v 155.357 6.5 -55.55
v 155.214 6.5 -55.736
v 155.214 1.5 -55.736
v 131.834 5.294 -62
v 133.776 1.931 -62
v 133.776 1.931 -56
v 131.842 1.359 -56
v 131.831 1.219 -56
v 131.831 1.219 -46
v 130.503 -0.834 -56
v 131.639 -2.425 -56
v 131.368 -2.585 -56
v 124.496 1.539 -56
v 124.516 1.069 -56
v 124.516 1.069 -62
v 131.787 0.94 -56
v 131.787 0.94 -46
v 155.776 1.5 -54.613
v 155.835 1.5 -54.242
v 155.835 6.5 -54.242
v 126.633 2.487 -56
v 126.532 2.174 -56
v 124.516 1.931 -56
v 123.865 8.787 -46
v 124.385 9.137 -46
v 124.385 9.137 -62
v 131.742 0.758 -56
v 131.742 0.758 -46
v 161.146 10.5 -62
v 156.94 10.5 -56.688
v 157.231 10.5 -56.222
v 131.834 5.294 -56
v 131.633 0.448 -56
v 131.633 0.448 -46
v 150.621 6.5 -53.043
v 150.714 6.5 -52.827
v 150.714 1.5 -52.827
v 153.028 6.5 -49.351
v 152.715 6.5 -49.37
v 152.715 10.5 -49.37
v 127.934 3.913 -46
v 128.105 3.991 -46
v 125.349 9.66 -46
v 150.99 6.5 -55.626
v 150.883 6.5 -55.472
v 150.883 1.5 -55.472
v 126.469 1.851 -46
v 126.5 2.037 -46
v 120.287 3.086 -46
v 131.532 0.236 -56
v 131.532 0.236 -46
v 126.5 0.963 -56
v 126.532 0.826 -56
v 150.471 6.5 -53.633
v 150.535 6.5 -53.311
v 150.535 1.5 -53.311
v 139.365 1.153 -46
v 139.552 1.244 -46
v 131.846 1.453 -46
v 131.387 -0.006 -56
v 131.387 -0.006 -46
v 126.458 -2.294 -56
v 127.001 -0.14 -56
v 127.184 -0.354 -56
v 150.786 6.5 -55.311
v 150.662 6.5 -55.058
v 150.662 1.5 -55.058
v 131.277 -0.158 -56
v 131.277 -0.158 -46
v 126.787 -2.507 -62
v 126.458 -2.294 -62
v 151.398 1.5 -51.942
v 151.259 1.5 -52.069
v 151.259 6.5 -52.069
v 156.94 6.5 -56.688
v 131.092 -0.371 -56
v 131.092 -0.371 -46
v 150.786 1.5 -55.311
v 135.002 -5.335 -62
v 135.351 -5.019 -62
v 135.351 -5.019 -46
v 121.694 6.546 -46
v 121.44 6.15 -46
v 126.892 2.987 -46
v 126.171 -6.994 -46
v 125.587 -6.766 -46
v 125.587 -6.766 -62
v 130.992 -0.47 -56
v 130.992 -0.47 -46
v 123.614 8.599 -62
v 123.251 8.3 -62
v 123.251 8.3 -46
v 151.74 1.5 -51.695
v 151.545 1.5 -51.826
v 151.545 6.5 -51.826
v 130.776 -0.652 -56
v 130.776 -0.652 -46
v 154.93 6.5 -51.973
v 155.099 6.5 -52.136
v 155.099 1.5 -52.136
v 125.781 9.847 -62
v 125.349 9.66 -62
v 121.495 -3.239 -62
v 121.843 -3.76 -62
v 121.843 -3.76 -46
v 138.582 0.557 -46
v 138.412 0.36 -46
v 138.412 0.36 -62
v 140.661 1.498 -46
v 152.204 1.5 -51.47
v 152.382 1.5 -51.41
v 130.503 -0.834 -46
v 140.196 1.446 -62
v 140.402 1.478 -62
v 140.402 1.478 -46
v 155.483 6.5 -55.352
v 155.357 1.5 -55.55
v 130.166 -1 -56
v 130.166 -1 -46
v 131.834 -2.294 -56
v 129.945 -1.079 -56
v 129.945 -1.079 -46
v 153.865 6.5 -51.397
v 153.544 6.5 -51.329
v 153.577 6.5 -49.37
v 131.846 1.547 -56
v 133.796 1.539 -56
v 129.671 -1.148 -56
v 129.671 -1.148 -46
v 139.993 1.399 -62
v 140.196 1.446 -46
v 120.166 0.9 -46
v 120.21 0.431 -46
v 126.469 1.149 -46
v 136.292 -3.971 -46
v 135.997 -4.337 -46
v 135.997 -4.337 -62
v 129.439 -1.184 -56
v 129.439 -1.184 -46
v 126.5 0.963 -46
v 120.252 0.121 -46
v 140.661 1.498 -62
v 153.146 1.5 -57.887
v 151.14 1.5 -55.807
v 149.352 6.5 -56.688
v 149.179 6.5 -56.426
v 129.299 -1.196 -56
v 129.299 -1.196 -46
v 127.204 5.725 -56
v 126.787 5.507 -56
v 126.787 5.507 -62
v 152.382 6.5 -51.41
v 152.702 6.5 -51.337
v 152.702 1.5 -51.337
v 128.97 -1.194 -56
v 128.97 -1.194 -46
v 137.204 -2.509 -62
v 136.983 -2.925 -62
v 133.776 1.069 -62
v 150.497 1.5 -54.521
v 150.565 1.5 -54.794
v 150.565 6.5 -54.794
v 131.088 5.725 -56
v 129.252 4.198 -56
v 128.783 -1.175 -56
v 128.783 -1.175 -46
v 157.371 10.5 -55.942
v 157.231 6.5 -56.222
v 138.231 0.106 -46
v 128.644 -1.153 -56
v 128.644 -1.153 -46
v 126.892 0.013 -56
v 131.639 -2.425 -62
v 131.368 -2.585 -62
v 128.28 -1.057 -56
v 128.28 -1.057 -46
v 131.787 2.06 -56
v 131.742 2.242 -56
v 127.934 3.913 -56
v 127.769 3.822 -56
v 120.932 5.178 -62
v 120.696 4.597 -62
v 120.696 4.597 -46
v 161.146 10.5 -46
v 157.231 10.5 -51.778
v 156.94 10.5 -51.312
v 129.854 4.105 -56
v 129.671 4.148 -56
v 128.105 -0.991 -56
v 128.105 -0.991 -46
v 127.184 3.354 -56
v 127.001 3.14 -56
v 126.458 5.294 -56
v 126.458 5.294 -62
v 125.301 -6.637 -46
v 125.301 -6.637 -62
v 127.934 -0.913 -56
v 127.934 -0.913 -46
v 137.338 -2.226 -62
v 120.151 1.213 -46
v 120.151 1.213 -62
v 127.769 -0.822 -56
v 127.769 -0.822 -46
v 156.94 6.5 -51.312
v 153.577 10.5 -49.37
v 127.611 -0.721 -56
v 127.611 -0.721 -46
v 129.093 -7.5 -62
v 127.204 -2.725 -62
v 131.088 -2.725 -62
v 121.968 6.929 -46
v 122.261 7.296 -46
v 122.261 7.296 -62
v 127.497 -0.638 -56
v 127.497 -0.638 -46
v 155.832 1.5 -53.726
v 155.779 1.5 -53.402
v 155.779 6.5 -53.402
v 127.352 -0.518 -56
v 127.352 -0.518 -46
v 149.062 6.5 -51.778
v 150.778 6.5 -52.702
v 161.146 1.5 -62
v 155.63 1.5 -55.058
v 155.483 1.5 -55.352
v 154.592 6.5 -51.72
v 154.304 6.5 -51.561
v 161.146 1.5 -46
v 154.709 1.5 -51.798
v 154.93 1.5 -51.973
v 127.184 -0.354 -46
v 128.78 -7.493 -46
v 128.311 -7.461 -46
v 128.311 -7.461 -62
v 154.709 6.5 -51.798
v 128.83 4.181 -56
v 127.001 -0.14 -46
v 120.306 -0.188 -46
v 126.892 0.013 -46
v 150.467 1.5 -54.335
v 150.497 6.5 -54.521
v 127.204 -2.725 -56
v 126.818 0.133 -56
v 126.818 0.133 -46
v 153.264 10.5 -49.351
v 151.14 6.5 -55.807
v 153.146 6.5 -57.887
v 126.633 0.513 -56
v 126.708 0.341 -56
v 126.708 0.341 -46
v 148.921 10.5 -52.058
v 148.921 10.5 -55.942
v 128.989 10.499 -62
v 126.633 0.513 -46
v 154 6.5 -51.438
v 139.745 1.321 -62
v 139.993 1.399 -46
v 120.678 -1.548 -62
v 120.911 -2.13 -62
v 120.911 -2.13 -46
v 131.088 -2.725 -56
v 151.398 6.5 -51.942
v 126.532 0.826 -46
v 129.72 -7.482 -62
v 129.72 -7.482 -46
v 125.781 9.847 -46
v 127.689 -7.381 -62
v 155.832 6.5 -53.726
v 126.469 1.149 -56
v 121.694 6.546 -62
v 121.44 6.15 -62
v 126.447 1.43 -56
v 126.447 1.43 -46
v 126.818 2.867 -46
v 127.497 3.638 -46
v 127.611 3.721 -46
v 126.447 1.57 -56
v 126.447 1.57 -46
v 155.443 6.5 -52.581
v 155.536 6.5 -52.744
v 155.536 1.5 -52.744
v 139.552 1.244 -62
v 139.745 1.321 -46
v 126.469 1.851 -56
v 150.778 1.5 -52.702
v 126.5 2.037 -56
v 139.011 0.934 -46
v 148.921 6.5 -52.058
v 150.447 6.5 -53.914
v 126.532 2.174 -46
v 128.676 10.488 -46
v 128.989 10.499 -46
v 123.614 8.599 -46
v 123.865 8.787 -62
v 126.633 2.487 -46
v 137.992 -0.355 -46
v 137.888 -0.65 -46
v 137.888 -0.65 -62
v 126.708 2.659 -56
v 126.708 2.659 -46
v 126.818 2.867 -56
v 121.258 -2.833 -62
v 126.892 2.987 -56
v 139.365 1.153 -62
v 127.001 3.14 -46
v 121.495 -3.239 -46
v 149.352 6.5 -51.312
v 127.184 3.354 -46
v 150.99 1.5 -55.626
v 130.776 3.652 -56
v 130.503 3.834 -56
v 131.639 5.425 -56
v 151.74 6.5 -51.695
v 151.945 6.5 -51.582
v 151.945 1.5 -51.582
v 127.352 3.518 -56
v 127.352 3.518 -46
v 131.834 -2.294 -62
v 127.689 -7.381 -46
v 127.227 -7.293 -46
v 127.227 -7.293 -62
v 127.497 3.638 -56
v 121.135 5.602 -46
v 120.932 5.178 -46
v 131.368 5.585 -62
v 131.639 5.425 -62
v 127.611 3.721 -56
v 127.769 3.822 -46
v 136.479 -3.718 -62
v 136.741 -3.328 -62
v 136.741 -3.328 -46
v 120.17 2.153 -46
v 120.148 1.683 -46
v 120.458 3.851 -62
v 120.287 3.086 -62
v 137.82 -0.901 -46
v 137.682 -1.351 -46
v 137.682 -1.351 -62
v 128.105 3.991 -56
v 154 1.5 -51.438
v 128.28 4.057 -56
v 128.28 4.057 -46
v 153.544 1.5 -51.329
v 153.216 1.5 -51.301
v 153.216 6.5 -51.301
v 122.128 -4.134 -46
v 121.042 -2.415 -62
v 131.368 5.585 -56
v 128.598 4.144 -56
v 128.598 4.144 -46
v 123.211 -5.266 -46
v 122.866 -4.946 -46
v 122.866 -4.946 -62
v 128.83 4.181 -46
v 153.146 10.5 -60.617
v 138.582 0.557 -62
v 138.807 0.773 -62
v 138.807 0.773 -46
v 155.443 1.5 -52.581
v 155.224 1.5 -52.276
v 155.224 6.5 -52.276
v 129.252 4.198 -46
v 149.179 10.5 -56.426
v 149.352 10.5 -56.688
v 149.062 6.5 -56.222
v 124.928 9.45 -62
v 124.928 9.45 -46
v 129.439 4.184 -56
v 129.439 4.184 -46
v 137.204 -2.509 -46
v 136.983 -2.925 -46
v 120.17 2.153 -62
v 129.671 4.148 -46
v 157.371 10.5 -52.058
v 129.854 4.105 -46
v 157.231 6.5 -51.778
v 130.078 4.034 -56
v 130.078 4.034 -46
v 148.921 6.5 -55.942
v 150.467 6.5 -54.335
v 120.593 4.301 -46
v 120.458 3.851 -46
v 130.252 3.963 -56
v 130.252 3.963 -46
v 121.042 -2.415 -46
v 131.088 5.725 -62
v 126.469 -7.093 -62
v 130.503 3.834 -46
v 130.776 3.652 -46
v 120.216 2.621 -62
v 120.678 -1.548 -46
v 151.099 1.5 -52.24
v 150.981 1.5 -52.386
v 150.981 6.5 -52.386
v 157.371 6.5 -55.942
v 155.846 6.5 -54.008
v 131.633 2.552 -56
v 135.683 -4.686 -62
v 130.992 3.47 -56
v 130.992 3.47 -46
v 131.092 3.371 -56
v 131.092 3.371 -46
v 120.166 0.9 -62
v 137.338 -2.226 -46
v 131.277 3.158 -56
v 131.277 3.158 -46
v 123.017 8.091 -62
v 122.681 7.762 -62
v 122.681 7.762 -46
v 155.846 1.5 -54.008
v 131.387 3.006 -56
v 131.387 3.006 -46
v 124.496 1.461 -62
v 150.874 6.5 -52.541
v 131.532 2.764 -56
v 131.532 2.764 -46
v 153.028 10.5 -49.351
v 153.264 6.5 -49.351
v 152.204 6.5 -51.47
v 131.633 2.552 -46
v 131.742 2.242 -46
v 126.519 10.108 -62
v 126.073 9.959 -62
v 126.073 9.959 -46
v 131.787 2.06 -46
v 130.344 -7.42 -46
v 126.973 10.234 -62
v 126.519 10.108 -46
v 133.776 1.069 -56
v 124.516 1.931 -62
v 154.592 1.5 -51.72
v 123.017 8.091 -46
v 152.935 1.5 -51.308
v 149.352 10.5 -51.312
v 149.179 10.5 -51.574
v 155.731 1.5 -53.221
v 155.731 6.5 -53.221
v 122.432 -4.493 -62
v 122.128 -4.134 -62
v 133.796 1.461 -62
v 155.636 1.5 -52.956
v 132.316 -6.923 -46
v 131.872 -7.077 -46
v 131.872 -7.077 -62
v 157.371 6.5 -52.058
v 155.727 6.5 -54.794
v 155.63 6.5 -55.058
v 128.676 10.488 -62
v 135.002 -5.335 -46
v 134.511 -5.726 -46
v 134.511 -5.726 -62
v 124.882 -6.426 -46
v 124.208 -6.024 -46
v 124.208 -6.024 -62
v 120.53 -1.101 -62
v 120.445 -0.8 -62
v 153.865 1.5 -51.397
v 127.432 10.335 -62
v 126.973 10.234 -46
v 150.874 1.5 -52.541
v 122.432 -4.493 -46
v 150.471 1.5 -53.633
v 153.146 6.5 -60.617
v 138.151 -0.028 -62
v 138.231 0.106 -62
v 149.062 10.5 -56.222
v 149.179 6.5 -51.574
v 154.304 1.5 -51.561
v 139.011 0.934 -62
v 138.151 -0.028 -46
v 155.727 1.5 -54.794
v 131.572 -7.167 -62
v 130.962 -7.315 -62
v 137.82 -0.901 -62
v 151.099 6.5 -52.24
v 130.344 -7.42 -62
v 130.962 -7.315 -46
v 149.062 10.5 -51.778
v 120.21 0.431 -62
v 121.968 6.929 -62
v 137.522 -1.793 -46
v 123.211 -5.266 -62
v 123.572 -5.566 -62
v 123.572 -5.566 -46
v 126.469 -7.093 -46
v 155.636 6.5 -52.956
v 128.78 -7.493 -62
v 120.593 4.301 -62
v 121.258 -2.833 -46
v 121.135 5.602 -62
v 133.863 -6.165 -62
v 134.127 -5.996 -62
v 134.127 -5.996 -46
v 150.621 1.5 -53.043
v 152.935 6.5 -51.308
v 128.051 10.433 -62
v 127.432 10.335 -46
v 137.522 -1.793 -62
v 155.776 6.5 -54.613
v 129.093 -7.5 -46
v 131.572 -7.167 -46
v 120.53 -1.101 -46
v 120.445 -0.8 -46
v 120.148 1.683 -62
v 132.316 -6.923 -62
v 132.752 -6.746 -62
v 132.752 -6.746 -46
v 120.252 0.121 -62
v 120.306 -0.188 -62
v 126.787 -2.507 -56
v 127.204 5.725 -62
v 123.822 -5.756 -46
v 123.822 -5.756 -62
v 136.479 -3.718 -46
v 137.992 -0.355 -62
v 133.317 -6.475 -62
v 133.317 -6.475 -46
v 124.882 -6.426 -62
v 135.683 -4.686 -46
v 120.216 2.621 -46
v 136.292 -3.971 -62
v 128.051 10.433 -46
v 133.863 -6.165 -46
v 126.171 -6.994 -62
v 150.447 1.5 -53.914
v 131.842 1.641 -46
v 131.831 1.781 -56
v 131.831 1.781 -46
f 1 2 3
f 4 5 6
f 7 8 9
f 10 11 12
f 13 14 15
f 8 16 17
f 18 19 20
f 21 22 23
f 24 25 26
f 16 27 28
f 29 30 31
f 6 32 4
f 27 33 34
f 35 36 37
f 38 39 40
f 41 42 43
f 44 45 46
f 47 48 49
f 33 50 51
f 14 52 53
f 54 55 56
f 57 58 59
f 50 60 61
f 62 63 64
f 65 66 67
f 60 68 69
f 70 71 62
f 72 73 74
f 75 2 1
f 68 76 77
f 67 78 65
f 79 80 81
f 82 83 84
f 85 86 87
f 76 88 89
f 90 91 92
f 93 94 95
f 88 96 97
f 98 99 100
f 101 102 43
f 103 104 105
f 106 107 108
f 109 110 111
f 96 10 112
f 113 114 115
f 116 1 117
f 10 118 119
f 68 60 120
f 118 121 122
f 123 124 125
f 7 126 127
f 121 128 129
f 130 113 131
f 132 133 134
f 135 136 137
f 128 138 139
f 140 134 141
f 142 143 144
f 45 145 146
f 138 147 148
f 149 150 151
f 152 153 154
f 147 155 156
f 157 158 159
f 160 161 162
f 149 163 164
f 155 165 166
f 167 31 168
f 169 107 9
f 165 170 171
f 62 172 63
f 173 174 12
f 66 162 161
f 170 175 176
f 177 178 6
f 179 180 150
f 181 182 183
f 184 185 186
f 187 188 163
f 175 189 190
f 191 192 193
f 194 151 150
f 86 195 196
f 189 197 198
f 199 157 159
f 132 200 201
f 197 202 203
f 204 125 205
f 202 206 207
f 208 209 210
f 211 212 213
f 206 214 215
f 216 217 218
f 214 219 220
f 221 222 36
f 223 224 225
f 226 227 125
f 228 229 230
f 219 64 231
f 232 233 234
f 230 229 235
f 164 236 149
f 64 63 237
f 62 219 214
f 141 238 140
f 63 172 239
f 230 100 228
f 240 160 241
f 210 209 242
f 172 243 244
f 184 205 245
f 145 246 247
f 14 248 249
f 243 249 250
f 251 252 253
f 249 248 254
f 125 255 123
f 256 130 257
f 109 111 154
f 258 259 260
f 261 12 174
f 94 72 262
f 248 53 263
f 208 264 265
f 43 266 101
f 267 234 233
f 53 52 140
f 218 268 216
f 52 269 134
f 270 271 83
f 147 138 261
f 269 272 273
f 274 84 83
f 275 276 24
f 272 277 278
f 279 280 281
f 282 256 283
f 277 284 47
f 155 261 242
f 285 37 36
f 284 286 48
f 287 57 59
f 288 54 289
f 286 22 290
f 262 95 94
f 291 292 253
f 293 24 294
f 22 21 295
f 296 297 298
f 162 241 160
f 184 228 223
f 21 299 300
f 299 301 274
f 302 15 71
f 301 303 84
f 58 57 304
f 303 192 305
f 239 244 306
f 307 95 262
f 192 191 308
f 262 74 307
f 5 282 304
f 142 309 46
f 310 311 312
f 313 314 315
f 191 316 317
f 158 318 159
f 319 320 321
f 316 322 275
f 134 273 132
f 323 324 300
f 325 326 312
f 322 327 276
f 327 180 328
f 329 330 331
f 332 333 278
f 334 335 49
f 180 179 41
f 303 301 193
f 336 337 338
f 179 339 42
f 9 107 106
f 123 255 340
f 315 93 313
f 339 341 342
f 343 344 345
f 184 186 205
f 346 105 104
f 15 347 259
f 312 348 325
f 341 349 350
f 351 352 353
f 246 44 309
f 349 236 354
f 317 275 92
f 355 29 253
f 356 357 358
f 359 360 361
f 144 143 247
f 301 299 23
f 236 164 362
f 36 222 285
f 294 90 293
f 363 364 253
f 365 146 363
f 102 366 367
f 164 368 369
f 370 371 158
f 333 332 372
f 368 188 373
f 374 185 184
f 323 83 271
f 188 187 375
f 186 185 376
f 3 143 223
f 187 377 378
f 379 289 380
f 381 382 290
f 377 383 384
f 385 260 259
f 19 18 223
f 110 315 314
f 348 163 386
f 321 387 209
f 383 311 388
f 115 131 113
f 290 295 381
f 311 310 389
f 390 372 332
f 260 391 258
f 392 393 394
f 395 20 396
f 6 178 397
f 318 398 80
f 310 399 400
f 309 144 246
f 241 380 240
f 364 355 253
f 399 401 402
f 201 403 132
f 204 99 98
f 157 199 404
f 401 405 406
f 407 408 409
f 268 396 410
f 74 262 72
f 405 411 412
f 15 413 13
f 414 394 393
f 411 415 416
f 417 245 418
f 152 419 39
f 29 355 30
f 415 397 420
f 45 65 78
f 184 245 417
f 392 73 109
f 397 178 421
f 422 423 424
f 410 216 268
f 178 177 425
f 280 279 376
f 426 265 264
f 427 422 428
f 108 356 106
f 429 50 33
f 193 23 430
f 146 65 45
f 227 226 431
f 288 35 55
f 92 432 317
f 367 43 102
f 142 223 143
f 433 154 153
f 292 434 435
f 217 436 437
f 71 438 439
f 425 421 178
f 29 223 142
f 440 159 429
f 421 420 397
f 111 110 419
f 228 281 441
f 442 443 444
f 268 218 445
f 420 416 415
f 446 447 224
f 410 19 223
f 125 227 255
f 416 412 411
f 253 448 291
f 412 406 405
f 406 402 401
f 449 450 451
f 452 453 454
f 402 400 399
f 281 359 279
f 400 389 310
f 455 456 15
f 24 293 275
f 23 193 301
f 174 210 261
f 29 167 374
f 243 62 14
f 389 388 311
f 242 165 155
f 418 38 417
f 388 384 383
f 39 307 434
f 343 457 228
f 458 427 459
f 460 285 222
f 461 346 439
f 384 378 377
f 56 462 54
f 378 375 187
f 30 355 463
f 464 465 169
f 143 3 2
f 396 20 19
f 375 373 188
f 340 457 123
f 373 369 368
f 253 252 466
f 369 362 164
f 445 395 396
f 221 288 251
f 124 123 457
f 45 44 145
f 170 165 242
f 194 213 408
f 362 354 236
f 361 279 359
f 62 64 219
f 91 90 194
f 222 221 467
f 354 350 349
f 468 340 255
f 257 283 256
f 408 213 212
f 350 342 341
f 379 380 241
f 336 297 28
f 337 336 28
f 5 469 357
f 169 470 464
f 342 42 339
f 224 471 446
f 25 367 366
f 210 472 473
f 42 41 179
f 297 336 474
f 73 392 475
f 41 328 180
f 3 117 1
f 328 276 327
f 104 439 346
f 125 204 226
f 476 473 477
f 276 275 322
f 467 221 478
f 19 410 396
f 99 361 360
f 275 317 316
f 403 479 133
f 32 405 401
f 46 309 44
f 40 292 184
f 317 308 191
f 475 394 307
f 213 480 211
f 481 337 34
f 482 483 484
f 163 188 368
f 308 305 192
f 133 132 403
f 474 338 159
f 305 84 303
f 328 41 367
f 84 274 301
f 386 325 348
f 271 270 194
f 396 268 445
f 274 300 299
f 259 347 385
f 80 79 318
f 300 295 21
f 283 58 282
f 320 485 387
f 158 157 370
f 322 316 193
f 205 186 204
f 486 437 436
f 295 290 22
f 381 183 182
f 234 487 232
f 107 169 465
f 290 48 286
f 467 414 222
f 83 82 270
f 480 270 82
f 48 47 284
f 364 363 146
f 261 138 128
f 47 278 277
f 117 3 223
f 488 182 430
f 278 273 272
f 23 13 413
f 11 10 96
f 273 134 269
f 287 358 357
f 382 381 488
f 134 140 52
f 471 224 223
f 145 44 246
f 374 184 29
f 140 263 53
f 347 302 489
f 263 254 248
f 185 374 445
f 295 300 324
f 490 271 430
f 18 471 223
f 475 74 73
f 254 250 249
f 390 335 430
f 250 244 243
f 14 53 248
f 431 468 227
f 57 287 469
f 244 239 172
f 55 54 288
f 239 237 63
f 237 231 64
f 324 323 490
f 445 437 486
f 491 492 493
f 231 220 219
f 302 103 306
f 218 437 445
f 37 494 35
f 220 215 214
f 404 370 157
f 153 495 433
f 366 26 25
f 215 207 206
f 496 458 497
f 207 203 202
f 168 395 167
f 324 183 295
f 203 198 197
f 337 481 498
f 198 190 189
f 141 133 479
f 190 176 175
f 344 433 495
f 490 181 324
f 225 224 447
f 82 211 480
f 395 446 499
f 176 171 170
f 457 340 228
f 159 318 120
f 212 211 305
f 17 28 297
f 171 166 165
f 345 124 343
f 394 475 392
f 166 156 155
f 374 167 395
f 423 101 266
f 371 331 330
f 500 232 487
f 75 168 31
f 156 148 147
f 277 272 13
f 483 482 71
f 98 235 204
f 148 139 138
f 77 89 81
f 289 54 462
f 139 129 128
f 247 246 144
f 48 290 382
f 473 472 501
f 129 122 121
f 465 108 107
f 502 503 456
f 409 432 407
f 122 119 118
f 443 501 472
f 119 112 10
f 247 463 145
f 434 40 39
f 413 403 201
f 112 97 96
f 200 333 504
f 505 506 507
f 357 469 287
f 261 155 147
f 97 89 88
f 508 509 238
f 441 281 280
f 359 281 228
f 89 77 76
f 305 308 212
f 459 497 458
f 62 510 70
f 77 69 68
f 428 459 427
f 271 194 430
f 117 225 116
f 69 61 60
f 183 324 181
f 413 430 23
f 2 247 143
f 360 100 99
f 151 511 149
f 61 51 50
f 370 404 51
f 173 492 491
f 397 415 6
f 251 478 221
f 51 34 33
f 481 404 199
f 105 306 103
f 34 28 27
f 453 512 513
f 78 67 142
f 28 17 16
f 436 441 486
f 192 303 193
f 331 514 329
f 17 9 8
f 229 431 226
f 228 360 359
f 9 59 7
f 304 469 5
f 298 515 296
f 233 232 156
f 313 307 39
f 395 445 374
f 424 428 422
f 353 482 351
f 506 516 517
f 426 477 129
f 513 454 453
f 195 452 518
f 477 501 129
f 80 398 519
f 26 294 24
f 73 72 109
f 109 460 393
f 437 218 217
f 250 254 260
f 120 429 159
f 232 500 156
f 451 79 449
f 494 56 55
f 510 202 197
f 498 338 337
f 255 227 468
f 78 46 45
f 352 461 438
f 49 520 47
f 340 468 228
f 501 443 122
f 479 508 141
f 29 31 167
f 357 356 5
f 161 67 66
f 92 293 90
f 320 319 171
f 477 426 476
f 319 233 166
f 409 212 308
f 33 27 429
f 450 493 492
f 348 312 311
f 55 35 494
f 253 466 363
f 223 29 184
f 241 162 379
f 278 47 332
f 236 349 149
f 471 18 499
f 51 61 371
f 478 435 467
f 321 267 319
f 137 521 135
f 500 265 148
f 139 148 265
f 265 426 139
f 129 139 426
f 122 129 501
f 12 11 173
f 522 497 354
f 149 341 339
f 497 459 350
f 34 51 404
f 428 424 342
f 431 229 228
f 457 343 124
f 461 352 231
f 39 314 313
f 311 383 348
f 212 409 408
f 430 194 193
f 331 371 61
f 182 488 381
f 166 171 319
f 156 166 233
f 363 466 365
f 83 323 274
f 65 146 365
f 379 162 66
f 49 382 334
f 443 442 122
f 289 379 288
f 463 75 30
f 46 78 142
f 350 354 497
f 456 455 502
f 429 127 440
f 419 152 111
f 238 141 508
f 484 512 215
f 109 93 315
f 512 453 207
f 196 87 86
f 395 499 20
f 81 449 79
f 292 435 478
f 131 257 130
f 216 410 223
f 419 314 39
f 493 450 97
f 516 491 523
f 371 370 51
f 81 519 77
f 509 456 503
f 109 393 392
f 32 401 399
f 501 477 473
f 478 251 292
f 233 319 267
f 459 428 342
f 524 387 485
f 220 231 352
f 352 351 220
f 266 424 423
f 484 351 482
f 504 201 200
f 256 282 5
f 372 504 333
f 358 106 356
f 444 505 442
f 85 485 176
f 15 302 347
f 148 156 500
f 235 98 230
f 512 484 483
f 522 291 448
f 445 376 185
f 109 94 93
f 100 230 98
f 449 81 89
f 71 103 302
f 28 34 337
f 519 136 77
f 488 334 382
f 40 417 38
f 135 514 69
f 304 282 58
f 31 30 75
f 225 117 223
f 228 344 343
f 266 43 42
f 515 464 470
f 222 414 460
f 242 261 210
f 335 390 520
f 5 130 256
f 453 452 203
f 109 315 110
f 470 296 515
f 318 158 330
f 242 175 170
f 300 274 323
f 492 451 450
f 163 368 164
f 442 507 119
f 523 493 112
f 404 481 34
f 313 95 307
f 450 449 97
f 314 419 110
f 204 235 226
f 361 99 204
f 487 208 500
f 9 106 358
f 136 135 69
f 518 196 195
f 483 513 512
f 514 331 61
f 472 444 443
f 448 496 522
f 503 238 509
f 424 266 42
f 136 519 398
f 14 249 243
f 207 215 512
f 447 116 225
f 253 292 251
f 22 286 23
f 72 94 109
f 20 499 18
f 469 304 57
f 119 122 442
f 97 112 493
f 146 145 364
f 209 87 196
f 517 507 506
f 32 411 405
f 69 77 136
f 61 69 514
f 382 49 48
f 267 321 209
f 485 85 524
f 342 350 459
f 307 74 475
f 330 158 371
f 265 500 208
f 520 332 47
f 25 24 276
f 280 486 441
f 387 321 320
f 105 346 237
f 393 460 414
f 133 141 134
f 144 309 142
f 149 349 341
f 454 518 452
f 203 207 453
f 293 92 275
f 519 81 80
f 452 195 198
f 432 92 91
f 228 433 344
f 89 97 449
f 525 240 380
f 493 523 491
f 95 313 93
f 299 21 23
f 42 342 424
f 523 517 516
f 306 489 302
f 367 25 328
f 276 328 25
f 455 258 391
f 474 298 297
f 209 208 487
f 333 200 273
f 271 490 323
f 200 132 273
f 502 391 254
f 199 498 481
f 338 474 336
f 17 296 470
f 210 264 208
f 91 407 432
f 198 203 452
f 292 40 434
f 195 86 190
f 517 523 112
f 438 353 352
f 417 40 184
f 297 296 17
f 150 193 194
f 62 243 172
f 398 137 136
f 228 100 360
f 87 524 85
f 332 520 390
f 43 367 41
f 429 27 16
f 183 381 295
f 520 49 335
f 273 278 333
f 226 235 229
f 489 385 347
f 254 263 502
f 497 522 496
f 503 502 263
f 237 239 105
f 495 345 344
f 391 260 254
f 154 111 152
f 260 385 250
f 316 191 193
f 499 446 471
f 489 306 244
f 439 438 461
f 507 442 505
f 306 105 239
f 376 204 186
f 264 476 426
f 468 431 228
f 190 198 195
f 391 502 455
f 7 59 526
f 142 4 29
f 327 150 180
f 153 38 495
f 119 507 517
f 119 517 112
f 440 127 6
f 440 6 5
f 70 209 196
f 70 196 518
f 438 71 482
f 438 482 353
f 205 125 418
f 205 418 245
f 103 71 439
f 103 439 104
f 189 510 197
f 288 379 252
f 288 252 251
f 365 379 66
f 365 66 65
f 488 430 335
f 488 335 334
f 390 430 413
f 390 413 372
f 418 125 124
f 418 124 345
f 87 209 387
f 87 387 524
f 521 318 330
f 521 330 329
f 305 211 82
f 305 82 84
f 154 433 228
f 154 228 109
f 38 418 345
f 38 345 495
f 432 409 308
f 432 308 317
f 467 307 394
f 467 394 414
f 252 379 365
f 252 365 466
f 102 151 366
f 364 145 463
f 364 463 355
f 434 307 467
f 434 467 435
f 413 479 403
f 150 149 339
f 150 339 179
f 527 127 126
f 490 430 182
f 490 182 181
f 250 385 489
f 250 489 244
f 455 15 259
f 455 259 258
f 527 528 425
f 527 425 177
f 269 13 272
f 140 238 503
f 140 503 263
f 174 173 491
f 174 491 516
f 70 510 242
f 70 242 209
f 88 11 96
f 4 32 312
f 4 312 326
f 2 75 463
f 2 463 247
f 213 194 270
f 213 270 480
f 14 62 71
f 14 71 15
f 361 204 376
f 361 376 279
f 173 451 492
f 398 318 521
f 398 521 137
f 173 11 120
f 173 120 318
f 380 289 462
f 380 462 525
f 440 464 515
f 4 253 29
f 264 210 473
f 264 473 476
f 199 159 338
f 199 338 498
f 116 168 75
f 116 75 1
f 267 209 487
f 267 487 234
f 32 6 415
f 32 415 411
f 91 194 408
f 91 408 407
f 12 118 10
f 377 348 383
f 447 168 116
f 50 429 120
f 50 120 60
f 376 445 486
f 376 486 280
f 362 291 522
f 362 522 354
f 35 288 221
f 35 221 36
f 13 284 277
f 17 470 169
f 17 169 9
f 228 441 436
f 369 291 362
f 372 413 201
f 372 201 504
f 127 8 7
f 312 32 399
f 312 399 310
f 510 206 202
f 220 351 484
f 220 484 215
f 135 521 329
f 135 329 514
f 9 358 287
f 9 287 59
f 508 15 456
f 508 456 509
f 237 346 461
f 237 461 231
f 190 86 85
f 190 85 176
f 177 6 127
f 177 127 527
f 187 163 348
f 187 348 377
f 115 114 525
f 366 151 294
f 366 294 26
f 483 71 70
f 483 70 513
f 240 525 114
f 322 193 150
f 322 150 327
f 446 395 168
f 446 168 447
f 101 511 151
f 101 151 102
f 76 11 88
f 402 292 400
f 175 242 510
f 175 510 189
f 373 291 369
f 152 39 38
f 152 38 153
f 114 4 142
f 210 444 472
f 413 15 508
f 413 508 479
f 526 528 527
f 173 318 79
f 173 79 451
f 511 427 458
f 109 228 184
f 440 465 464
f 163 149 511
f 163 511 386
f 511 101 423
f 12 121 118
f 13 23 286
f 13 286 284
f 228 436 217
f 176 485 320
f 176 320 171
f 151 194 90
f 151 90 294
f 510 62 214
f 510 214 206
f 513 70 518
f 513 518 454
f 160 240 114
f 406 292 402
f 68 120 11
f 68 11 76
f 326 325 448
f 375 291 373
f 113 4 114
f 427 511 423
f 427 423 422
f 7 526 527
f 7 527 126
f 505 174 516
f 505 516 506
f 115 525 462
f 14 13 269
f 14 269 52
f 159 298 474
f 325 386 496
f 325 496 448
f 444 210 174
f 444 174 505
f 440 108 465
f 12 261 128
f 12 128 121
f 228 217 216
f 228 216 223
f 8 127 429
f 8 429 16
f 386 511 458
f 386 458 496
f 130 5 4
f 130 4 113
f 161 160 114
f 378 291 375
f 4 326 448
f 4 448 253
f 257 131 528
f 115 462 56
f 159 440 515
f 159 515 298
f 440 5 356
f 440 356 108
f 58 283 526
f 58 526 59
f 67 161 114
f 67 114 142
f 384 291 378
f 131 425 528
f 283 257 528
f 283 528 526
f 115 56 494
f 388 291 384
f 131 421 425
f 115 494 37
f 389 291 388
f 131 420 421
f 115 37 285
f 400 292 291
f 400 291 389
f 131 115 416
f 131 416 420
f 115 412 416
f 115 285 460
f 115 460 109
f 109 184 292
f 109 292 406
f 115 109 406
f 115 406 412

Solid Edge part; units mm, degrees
sketch "Sketch1" plane through (0, 0, -46) normal (0, 0, 1) x (1, 0, 0)
  line L0 (140.765, 1.5) -> (161.1461, 1.5)
  line L1 (161.1461, 1.5) -> (161.1461, 10.5)
  line L2 (161.1461, 10.5) -> (129.1461, 10.5)
  arc A0 (140.765, 1.5) -> (137.8603, -0.75) centre (140.765, -1.5) ccw
  arc A1 (137.8603, -0.75) -> (129.1461, 10.5) centre (129.1461, 1.5) cw
extrude "Protrusion1" add sketch "Sketch1" against normal blind 16
sketch "Sketch2" plane through (150.9555, 10.5, -54) normal (0, 1, 0) x (-1, 0, 0)
  arc A0 (-4.1327, -1.8756) -> (-0.2483, -1.8756) centre (-2.1905, 0) cw
  line L0 (-2.1905, -3.8868) -> (-0.2483, -1.8756)
  line L1 (-4.1327, -1.8756) -> (-2.1905, -3.8868)
extrude "Cutout1" cut sketch "Sketch2" against normal through all
sketch "Sketch3" plane through (150.9555, 10.5, -54) normal (0, 1, 0) x (-1, 0, 0)
  arc A0 (1.6039, 2.6879) -> (2.0345, 1.9421) centre (-2.1905, 0) cw
  line L0 (2.0345, 1.9421) -> (2.0345, 0)
  line L1 (2.0345, -1.9421) -> (2.0345, 0)
  arc A1 (2.0345, -1.9421) -> (1.6039, -2.6879) centre (-2.1905, 0) cw
  line L2 (1.6039, -2.6879) -> (-2.1905, -6.6171)
  line L3 (-2.1905, -6.6171) -> (-5.985, -2.6879)
  arc A2 (-5.985, -2.6879) -> (-6.4155, -1.9421) centre (-2.1905, 0) cw
  line L4 (-6.4155, -1.9421) -> (-6.4155, 0)
  line L5 (-6.4155, 1.9421) -> (-6.4155, 0)
  arc A3 (-6.4155, 1.9421) -> (-5.985, 2.6879) centre (-2.1905, 0) cw
  line L6 (-5.985, 2.6879) -> (-4.303, 3.659)
  line L7 (-2.6211, 4.63) -> (-4.303, 3.659)
  arc A4 (-2.6211, 4.63) -> (-1.76, 4.63) centre (-2.1905, 0) cw
  line L8 (-1.76, 4.63) -> (-0.078, 3.659)
  line L9 (1.6039, 2.6879) -> (-0.078, 3.659)
extrude "ExtrudedCutout_2" cut sketch "Sketch3" against normal blind 4
sketch "Sketch4" plane through (140.6461, 1.5, -62) normal (0, 0, -1) x (1, 0, 0)
  line L0 (-16.13, 0.4306) -> (-15.159, 2.1125)
  line L1 (-14.1879, 3.7944) -> (-15.159, 2.1125)
  arc A0 (-13.4421, 4.225) -> (-14.1879, 3.7944) centre (-11.5, 0) ccw
  line L2 (-13.4421, 4.225) -> (-11.5, 4.225)
  line L3 (-9.5579, 4.225) -> (-11.5, 4.225)
  arc A1 (-8.8121, 3.7944) -> (-9.5579, 4.225) centre (-11.5, 0) ccw
  line L4 (-8.8121, 3.7944) -> (-7.841, 2.1125)
  line L5 (-6.87, 0.4306) -> (-7.841, 2.1125)
  arc A2 (-6.87, -0.4306) -> (-6.87, 0.4306) centre (-11.5, 0) ccw
  line L6 (-6.87, -0.4306) -> (-7.841, -2.1125)
  line L7 (-8.8121, -3.7944) -> (-7.841, -2.1125)
  arc A3 (-9.5579, -4.225) -> (-8.8121, -3.7944) centre (-11.5, 0) ccw
  line L8 (-9.5579, -4.225) -> (-11.5, -4.225)
  line L9 (-13.4421, -4.225) -> (-11.5, -4.225)
  arc A4 (-14.1879, -3.7944) -> (-13.4421, -4.225) centre (-11.5, 0) ccw
  line L10 (-14.1879, -3.7944) -> (-15.159, -2.1125)
  line L11 (-16.13, -0.4306) -> (-15.159, -2.1125)
  arc A5 (-16.13, 0.4306) -> (-16.13, -0.4306) centre (-11.5, 0) ccw
extrude "ExtrudedCutout_3" cut sketch "Sketch4" against normal blind 6
sketch "Sketch5" plane through (0, 0, -46) normal (0, 0, 1) x (1, 0, 0)
  circle A0 centre (129.1461, 1.5) radius 2.7
extrude "Cutout2" cut sketch "Sketch5" against normal through all
properties material "ABS Plastic, medium impact"
